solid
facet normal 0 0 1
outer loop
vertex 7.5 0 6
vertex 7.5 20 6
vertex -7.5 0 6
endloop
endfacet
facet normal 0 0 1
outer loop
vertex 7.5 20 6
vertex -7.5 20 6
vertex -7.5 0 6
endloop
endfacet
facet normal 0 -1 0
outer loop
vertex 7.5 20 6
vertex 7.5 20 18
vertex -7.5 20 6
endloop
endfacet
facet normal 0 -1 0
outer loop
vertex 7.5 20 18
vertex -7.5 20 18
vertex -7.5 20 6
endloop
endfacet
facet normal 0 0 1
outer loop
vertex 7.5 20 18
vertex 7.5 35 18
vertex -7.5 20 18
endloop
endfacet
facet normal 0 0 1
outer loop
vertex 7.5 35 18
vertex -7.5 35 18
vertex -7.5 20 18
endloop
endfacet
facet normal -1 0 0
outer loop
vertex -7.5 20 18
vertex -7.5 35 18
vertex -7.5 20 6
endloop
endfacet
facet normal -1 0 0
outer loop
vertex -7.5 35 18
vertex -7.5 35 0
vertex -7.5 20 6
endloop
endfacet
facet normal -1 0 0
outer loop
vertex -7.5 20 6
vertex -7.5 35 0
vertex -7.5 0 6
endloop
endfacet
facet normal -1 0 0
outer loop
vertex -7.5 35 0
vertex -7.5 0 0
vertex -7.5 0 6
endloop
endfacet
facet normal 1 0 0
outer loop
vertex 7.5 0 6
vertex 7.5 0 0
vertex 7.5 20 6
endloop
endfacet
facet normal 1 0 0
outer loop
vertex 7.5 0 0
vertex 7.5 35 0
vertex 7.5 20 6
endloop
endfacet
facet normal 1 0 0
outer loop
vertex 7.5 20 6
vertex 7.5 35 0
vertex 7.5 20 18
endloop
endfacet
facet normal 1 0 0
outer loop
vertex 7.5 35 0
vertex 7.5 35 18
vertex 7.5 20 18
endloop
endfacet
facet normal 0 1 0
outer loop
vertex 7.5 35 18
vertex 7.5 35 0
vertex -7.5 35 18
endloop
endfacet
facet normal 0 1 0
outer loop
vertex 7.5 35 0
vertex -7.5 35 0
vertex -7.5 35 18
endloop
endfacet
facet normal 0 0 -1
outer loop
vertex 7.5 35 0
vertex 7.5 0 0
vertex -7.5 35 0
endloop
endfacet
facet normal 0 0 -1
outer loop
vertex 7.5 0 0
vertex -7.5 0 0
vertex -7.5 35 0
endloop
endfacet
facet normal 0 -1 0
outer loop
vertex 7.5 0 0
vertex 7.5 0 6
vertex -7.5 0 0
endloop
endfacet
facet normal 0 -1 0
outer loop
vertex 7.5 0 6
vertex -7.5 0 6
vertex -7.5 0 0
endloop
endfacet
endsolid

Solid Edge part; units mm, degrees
sketch "Sketch1" plane through (0, 0, 0) normal (1, 0, 0) x (0, 1, 0)
  line L0 (0, 0) -> (35, 0)
  line L1 (35, 0) -> (35, 18)
  line L2 (35, 18) -> (20, 18)
  line L3 (20, 18) -> (20, 6)
  line L4 (20, 6) -> (0, 6)
  line L5 (0, 6) -> (0, 0)
  dimension "D1" = 35
  dimension "D2" = 18
  dimension "D3" = 12
  dimension "D4" = 15
extrude "Protrusion1" add sketch "Sketch1" along normal mid plane 15
properties material "Polyethylene, low density"
